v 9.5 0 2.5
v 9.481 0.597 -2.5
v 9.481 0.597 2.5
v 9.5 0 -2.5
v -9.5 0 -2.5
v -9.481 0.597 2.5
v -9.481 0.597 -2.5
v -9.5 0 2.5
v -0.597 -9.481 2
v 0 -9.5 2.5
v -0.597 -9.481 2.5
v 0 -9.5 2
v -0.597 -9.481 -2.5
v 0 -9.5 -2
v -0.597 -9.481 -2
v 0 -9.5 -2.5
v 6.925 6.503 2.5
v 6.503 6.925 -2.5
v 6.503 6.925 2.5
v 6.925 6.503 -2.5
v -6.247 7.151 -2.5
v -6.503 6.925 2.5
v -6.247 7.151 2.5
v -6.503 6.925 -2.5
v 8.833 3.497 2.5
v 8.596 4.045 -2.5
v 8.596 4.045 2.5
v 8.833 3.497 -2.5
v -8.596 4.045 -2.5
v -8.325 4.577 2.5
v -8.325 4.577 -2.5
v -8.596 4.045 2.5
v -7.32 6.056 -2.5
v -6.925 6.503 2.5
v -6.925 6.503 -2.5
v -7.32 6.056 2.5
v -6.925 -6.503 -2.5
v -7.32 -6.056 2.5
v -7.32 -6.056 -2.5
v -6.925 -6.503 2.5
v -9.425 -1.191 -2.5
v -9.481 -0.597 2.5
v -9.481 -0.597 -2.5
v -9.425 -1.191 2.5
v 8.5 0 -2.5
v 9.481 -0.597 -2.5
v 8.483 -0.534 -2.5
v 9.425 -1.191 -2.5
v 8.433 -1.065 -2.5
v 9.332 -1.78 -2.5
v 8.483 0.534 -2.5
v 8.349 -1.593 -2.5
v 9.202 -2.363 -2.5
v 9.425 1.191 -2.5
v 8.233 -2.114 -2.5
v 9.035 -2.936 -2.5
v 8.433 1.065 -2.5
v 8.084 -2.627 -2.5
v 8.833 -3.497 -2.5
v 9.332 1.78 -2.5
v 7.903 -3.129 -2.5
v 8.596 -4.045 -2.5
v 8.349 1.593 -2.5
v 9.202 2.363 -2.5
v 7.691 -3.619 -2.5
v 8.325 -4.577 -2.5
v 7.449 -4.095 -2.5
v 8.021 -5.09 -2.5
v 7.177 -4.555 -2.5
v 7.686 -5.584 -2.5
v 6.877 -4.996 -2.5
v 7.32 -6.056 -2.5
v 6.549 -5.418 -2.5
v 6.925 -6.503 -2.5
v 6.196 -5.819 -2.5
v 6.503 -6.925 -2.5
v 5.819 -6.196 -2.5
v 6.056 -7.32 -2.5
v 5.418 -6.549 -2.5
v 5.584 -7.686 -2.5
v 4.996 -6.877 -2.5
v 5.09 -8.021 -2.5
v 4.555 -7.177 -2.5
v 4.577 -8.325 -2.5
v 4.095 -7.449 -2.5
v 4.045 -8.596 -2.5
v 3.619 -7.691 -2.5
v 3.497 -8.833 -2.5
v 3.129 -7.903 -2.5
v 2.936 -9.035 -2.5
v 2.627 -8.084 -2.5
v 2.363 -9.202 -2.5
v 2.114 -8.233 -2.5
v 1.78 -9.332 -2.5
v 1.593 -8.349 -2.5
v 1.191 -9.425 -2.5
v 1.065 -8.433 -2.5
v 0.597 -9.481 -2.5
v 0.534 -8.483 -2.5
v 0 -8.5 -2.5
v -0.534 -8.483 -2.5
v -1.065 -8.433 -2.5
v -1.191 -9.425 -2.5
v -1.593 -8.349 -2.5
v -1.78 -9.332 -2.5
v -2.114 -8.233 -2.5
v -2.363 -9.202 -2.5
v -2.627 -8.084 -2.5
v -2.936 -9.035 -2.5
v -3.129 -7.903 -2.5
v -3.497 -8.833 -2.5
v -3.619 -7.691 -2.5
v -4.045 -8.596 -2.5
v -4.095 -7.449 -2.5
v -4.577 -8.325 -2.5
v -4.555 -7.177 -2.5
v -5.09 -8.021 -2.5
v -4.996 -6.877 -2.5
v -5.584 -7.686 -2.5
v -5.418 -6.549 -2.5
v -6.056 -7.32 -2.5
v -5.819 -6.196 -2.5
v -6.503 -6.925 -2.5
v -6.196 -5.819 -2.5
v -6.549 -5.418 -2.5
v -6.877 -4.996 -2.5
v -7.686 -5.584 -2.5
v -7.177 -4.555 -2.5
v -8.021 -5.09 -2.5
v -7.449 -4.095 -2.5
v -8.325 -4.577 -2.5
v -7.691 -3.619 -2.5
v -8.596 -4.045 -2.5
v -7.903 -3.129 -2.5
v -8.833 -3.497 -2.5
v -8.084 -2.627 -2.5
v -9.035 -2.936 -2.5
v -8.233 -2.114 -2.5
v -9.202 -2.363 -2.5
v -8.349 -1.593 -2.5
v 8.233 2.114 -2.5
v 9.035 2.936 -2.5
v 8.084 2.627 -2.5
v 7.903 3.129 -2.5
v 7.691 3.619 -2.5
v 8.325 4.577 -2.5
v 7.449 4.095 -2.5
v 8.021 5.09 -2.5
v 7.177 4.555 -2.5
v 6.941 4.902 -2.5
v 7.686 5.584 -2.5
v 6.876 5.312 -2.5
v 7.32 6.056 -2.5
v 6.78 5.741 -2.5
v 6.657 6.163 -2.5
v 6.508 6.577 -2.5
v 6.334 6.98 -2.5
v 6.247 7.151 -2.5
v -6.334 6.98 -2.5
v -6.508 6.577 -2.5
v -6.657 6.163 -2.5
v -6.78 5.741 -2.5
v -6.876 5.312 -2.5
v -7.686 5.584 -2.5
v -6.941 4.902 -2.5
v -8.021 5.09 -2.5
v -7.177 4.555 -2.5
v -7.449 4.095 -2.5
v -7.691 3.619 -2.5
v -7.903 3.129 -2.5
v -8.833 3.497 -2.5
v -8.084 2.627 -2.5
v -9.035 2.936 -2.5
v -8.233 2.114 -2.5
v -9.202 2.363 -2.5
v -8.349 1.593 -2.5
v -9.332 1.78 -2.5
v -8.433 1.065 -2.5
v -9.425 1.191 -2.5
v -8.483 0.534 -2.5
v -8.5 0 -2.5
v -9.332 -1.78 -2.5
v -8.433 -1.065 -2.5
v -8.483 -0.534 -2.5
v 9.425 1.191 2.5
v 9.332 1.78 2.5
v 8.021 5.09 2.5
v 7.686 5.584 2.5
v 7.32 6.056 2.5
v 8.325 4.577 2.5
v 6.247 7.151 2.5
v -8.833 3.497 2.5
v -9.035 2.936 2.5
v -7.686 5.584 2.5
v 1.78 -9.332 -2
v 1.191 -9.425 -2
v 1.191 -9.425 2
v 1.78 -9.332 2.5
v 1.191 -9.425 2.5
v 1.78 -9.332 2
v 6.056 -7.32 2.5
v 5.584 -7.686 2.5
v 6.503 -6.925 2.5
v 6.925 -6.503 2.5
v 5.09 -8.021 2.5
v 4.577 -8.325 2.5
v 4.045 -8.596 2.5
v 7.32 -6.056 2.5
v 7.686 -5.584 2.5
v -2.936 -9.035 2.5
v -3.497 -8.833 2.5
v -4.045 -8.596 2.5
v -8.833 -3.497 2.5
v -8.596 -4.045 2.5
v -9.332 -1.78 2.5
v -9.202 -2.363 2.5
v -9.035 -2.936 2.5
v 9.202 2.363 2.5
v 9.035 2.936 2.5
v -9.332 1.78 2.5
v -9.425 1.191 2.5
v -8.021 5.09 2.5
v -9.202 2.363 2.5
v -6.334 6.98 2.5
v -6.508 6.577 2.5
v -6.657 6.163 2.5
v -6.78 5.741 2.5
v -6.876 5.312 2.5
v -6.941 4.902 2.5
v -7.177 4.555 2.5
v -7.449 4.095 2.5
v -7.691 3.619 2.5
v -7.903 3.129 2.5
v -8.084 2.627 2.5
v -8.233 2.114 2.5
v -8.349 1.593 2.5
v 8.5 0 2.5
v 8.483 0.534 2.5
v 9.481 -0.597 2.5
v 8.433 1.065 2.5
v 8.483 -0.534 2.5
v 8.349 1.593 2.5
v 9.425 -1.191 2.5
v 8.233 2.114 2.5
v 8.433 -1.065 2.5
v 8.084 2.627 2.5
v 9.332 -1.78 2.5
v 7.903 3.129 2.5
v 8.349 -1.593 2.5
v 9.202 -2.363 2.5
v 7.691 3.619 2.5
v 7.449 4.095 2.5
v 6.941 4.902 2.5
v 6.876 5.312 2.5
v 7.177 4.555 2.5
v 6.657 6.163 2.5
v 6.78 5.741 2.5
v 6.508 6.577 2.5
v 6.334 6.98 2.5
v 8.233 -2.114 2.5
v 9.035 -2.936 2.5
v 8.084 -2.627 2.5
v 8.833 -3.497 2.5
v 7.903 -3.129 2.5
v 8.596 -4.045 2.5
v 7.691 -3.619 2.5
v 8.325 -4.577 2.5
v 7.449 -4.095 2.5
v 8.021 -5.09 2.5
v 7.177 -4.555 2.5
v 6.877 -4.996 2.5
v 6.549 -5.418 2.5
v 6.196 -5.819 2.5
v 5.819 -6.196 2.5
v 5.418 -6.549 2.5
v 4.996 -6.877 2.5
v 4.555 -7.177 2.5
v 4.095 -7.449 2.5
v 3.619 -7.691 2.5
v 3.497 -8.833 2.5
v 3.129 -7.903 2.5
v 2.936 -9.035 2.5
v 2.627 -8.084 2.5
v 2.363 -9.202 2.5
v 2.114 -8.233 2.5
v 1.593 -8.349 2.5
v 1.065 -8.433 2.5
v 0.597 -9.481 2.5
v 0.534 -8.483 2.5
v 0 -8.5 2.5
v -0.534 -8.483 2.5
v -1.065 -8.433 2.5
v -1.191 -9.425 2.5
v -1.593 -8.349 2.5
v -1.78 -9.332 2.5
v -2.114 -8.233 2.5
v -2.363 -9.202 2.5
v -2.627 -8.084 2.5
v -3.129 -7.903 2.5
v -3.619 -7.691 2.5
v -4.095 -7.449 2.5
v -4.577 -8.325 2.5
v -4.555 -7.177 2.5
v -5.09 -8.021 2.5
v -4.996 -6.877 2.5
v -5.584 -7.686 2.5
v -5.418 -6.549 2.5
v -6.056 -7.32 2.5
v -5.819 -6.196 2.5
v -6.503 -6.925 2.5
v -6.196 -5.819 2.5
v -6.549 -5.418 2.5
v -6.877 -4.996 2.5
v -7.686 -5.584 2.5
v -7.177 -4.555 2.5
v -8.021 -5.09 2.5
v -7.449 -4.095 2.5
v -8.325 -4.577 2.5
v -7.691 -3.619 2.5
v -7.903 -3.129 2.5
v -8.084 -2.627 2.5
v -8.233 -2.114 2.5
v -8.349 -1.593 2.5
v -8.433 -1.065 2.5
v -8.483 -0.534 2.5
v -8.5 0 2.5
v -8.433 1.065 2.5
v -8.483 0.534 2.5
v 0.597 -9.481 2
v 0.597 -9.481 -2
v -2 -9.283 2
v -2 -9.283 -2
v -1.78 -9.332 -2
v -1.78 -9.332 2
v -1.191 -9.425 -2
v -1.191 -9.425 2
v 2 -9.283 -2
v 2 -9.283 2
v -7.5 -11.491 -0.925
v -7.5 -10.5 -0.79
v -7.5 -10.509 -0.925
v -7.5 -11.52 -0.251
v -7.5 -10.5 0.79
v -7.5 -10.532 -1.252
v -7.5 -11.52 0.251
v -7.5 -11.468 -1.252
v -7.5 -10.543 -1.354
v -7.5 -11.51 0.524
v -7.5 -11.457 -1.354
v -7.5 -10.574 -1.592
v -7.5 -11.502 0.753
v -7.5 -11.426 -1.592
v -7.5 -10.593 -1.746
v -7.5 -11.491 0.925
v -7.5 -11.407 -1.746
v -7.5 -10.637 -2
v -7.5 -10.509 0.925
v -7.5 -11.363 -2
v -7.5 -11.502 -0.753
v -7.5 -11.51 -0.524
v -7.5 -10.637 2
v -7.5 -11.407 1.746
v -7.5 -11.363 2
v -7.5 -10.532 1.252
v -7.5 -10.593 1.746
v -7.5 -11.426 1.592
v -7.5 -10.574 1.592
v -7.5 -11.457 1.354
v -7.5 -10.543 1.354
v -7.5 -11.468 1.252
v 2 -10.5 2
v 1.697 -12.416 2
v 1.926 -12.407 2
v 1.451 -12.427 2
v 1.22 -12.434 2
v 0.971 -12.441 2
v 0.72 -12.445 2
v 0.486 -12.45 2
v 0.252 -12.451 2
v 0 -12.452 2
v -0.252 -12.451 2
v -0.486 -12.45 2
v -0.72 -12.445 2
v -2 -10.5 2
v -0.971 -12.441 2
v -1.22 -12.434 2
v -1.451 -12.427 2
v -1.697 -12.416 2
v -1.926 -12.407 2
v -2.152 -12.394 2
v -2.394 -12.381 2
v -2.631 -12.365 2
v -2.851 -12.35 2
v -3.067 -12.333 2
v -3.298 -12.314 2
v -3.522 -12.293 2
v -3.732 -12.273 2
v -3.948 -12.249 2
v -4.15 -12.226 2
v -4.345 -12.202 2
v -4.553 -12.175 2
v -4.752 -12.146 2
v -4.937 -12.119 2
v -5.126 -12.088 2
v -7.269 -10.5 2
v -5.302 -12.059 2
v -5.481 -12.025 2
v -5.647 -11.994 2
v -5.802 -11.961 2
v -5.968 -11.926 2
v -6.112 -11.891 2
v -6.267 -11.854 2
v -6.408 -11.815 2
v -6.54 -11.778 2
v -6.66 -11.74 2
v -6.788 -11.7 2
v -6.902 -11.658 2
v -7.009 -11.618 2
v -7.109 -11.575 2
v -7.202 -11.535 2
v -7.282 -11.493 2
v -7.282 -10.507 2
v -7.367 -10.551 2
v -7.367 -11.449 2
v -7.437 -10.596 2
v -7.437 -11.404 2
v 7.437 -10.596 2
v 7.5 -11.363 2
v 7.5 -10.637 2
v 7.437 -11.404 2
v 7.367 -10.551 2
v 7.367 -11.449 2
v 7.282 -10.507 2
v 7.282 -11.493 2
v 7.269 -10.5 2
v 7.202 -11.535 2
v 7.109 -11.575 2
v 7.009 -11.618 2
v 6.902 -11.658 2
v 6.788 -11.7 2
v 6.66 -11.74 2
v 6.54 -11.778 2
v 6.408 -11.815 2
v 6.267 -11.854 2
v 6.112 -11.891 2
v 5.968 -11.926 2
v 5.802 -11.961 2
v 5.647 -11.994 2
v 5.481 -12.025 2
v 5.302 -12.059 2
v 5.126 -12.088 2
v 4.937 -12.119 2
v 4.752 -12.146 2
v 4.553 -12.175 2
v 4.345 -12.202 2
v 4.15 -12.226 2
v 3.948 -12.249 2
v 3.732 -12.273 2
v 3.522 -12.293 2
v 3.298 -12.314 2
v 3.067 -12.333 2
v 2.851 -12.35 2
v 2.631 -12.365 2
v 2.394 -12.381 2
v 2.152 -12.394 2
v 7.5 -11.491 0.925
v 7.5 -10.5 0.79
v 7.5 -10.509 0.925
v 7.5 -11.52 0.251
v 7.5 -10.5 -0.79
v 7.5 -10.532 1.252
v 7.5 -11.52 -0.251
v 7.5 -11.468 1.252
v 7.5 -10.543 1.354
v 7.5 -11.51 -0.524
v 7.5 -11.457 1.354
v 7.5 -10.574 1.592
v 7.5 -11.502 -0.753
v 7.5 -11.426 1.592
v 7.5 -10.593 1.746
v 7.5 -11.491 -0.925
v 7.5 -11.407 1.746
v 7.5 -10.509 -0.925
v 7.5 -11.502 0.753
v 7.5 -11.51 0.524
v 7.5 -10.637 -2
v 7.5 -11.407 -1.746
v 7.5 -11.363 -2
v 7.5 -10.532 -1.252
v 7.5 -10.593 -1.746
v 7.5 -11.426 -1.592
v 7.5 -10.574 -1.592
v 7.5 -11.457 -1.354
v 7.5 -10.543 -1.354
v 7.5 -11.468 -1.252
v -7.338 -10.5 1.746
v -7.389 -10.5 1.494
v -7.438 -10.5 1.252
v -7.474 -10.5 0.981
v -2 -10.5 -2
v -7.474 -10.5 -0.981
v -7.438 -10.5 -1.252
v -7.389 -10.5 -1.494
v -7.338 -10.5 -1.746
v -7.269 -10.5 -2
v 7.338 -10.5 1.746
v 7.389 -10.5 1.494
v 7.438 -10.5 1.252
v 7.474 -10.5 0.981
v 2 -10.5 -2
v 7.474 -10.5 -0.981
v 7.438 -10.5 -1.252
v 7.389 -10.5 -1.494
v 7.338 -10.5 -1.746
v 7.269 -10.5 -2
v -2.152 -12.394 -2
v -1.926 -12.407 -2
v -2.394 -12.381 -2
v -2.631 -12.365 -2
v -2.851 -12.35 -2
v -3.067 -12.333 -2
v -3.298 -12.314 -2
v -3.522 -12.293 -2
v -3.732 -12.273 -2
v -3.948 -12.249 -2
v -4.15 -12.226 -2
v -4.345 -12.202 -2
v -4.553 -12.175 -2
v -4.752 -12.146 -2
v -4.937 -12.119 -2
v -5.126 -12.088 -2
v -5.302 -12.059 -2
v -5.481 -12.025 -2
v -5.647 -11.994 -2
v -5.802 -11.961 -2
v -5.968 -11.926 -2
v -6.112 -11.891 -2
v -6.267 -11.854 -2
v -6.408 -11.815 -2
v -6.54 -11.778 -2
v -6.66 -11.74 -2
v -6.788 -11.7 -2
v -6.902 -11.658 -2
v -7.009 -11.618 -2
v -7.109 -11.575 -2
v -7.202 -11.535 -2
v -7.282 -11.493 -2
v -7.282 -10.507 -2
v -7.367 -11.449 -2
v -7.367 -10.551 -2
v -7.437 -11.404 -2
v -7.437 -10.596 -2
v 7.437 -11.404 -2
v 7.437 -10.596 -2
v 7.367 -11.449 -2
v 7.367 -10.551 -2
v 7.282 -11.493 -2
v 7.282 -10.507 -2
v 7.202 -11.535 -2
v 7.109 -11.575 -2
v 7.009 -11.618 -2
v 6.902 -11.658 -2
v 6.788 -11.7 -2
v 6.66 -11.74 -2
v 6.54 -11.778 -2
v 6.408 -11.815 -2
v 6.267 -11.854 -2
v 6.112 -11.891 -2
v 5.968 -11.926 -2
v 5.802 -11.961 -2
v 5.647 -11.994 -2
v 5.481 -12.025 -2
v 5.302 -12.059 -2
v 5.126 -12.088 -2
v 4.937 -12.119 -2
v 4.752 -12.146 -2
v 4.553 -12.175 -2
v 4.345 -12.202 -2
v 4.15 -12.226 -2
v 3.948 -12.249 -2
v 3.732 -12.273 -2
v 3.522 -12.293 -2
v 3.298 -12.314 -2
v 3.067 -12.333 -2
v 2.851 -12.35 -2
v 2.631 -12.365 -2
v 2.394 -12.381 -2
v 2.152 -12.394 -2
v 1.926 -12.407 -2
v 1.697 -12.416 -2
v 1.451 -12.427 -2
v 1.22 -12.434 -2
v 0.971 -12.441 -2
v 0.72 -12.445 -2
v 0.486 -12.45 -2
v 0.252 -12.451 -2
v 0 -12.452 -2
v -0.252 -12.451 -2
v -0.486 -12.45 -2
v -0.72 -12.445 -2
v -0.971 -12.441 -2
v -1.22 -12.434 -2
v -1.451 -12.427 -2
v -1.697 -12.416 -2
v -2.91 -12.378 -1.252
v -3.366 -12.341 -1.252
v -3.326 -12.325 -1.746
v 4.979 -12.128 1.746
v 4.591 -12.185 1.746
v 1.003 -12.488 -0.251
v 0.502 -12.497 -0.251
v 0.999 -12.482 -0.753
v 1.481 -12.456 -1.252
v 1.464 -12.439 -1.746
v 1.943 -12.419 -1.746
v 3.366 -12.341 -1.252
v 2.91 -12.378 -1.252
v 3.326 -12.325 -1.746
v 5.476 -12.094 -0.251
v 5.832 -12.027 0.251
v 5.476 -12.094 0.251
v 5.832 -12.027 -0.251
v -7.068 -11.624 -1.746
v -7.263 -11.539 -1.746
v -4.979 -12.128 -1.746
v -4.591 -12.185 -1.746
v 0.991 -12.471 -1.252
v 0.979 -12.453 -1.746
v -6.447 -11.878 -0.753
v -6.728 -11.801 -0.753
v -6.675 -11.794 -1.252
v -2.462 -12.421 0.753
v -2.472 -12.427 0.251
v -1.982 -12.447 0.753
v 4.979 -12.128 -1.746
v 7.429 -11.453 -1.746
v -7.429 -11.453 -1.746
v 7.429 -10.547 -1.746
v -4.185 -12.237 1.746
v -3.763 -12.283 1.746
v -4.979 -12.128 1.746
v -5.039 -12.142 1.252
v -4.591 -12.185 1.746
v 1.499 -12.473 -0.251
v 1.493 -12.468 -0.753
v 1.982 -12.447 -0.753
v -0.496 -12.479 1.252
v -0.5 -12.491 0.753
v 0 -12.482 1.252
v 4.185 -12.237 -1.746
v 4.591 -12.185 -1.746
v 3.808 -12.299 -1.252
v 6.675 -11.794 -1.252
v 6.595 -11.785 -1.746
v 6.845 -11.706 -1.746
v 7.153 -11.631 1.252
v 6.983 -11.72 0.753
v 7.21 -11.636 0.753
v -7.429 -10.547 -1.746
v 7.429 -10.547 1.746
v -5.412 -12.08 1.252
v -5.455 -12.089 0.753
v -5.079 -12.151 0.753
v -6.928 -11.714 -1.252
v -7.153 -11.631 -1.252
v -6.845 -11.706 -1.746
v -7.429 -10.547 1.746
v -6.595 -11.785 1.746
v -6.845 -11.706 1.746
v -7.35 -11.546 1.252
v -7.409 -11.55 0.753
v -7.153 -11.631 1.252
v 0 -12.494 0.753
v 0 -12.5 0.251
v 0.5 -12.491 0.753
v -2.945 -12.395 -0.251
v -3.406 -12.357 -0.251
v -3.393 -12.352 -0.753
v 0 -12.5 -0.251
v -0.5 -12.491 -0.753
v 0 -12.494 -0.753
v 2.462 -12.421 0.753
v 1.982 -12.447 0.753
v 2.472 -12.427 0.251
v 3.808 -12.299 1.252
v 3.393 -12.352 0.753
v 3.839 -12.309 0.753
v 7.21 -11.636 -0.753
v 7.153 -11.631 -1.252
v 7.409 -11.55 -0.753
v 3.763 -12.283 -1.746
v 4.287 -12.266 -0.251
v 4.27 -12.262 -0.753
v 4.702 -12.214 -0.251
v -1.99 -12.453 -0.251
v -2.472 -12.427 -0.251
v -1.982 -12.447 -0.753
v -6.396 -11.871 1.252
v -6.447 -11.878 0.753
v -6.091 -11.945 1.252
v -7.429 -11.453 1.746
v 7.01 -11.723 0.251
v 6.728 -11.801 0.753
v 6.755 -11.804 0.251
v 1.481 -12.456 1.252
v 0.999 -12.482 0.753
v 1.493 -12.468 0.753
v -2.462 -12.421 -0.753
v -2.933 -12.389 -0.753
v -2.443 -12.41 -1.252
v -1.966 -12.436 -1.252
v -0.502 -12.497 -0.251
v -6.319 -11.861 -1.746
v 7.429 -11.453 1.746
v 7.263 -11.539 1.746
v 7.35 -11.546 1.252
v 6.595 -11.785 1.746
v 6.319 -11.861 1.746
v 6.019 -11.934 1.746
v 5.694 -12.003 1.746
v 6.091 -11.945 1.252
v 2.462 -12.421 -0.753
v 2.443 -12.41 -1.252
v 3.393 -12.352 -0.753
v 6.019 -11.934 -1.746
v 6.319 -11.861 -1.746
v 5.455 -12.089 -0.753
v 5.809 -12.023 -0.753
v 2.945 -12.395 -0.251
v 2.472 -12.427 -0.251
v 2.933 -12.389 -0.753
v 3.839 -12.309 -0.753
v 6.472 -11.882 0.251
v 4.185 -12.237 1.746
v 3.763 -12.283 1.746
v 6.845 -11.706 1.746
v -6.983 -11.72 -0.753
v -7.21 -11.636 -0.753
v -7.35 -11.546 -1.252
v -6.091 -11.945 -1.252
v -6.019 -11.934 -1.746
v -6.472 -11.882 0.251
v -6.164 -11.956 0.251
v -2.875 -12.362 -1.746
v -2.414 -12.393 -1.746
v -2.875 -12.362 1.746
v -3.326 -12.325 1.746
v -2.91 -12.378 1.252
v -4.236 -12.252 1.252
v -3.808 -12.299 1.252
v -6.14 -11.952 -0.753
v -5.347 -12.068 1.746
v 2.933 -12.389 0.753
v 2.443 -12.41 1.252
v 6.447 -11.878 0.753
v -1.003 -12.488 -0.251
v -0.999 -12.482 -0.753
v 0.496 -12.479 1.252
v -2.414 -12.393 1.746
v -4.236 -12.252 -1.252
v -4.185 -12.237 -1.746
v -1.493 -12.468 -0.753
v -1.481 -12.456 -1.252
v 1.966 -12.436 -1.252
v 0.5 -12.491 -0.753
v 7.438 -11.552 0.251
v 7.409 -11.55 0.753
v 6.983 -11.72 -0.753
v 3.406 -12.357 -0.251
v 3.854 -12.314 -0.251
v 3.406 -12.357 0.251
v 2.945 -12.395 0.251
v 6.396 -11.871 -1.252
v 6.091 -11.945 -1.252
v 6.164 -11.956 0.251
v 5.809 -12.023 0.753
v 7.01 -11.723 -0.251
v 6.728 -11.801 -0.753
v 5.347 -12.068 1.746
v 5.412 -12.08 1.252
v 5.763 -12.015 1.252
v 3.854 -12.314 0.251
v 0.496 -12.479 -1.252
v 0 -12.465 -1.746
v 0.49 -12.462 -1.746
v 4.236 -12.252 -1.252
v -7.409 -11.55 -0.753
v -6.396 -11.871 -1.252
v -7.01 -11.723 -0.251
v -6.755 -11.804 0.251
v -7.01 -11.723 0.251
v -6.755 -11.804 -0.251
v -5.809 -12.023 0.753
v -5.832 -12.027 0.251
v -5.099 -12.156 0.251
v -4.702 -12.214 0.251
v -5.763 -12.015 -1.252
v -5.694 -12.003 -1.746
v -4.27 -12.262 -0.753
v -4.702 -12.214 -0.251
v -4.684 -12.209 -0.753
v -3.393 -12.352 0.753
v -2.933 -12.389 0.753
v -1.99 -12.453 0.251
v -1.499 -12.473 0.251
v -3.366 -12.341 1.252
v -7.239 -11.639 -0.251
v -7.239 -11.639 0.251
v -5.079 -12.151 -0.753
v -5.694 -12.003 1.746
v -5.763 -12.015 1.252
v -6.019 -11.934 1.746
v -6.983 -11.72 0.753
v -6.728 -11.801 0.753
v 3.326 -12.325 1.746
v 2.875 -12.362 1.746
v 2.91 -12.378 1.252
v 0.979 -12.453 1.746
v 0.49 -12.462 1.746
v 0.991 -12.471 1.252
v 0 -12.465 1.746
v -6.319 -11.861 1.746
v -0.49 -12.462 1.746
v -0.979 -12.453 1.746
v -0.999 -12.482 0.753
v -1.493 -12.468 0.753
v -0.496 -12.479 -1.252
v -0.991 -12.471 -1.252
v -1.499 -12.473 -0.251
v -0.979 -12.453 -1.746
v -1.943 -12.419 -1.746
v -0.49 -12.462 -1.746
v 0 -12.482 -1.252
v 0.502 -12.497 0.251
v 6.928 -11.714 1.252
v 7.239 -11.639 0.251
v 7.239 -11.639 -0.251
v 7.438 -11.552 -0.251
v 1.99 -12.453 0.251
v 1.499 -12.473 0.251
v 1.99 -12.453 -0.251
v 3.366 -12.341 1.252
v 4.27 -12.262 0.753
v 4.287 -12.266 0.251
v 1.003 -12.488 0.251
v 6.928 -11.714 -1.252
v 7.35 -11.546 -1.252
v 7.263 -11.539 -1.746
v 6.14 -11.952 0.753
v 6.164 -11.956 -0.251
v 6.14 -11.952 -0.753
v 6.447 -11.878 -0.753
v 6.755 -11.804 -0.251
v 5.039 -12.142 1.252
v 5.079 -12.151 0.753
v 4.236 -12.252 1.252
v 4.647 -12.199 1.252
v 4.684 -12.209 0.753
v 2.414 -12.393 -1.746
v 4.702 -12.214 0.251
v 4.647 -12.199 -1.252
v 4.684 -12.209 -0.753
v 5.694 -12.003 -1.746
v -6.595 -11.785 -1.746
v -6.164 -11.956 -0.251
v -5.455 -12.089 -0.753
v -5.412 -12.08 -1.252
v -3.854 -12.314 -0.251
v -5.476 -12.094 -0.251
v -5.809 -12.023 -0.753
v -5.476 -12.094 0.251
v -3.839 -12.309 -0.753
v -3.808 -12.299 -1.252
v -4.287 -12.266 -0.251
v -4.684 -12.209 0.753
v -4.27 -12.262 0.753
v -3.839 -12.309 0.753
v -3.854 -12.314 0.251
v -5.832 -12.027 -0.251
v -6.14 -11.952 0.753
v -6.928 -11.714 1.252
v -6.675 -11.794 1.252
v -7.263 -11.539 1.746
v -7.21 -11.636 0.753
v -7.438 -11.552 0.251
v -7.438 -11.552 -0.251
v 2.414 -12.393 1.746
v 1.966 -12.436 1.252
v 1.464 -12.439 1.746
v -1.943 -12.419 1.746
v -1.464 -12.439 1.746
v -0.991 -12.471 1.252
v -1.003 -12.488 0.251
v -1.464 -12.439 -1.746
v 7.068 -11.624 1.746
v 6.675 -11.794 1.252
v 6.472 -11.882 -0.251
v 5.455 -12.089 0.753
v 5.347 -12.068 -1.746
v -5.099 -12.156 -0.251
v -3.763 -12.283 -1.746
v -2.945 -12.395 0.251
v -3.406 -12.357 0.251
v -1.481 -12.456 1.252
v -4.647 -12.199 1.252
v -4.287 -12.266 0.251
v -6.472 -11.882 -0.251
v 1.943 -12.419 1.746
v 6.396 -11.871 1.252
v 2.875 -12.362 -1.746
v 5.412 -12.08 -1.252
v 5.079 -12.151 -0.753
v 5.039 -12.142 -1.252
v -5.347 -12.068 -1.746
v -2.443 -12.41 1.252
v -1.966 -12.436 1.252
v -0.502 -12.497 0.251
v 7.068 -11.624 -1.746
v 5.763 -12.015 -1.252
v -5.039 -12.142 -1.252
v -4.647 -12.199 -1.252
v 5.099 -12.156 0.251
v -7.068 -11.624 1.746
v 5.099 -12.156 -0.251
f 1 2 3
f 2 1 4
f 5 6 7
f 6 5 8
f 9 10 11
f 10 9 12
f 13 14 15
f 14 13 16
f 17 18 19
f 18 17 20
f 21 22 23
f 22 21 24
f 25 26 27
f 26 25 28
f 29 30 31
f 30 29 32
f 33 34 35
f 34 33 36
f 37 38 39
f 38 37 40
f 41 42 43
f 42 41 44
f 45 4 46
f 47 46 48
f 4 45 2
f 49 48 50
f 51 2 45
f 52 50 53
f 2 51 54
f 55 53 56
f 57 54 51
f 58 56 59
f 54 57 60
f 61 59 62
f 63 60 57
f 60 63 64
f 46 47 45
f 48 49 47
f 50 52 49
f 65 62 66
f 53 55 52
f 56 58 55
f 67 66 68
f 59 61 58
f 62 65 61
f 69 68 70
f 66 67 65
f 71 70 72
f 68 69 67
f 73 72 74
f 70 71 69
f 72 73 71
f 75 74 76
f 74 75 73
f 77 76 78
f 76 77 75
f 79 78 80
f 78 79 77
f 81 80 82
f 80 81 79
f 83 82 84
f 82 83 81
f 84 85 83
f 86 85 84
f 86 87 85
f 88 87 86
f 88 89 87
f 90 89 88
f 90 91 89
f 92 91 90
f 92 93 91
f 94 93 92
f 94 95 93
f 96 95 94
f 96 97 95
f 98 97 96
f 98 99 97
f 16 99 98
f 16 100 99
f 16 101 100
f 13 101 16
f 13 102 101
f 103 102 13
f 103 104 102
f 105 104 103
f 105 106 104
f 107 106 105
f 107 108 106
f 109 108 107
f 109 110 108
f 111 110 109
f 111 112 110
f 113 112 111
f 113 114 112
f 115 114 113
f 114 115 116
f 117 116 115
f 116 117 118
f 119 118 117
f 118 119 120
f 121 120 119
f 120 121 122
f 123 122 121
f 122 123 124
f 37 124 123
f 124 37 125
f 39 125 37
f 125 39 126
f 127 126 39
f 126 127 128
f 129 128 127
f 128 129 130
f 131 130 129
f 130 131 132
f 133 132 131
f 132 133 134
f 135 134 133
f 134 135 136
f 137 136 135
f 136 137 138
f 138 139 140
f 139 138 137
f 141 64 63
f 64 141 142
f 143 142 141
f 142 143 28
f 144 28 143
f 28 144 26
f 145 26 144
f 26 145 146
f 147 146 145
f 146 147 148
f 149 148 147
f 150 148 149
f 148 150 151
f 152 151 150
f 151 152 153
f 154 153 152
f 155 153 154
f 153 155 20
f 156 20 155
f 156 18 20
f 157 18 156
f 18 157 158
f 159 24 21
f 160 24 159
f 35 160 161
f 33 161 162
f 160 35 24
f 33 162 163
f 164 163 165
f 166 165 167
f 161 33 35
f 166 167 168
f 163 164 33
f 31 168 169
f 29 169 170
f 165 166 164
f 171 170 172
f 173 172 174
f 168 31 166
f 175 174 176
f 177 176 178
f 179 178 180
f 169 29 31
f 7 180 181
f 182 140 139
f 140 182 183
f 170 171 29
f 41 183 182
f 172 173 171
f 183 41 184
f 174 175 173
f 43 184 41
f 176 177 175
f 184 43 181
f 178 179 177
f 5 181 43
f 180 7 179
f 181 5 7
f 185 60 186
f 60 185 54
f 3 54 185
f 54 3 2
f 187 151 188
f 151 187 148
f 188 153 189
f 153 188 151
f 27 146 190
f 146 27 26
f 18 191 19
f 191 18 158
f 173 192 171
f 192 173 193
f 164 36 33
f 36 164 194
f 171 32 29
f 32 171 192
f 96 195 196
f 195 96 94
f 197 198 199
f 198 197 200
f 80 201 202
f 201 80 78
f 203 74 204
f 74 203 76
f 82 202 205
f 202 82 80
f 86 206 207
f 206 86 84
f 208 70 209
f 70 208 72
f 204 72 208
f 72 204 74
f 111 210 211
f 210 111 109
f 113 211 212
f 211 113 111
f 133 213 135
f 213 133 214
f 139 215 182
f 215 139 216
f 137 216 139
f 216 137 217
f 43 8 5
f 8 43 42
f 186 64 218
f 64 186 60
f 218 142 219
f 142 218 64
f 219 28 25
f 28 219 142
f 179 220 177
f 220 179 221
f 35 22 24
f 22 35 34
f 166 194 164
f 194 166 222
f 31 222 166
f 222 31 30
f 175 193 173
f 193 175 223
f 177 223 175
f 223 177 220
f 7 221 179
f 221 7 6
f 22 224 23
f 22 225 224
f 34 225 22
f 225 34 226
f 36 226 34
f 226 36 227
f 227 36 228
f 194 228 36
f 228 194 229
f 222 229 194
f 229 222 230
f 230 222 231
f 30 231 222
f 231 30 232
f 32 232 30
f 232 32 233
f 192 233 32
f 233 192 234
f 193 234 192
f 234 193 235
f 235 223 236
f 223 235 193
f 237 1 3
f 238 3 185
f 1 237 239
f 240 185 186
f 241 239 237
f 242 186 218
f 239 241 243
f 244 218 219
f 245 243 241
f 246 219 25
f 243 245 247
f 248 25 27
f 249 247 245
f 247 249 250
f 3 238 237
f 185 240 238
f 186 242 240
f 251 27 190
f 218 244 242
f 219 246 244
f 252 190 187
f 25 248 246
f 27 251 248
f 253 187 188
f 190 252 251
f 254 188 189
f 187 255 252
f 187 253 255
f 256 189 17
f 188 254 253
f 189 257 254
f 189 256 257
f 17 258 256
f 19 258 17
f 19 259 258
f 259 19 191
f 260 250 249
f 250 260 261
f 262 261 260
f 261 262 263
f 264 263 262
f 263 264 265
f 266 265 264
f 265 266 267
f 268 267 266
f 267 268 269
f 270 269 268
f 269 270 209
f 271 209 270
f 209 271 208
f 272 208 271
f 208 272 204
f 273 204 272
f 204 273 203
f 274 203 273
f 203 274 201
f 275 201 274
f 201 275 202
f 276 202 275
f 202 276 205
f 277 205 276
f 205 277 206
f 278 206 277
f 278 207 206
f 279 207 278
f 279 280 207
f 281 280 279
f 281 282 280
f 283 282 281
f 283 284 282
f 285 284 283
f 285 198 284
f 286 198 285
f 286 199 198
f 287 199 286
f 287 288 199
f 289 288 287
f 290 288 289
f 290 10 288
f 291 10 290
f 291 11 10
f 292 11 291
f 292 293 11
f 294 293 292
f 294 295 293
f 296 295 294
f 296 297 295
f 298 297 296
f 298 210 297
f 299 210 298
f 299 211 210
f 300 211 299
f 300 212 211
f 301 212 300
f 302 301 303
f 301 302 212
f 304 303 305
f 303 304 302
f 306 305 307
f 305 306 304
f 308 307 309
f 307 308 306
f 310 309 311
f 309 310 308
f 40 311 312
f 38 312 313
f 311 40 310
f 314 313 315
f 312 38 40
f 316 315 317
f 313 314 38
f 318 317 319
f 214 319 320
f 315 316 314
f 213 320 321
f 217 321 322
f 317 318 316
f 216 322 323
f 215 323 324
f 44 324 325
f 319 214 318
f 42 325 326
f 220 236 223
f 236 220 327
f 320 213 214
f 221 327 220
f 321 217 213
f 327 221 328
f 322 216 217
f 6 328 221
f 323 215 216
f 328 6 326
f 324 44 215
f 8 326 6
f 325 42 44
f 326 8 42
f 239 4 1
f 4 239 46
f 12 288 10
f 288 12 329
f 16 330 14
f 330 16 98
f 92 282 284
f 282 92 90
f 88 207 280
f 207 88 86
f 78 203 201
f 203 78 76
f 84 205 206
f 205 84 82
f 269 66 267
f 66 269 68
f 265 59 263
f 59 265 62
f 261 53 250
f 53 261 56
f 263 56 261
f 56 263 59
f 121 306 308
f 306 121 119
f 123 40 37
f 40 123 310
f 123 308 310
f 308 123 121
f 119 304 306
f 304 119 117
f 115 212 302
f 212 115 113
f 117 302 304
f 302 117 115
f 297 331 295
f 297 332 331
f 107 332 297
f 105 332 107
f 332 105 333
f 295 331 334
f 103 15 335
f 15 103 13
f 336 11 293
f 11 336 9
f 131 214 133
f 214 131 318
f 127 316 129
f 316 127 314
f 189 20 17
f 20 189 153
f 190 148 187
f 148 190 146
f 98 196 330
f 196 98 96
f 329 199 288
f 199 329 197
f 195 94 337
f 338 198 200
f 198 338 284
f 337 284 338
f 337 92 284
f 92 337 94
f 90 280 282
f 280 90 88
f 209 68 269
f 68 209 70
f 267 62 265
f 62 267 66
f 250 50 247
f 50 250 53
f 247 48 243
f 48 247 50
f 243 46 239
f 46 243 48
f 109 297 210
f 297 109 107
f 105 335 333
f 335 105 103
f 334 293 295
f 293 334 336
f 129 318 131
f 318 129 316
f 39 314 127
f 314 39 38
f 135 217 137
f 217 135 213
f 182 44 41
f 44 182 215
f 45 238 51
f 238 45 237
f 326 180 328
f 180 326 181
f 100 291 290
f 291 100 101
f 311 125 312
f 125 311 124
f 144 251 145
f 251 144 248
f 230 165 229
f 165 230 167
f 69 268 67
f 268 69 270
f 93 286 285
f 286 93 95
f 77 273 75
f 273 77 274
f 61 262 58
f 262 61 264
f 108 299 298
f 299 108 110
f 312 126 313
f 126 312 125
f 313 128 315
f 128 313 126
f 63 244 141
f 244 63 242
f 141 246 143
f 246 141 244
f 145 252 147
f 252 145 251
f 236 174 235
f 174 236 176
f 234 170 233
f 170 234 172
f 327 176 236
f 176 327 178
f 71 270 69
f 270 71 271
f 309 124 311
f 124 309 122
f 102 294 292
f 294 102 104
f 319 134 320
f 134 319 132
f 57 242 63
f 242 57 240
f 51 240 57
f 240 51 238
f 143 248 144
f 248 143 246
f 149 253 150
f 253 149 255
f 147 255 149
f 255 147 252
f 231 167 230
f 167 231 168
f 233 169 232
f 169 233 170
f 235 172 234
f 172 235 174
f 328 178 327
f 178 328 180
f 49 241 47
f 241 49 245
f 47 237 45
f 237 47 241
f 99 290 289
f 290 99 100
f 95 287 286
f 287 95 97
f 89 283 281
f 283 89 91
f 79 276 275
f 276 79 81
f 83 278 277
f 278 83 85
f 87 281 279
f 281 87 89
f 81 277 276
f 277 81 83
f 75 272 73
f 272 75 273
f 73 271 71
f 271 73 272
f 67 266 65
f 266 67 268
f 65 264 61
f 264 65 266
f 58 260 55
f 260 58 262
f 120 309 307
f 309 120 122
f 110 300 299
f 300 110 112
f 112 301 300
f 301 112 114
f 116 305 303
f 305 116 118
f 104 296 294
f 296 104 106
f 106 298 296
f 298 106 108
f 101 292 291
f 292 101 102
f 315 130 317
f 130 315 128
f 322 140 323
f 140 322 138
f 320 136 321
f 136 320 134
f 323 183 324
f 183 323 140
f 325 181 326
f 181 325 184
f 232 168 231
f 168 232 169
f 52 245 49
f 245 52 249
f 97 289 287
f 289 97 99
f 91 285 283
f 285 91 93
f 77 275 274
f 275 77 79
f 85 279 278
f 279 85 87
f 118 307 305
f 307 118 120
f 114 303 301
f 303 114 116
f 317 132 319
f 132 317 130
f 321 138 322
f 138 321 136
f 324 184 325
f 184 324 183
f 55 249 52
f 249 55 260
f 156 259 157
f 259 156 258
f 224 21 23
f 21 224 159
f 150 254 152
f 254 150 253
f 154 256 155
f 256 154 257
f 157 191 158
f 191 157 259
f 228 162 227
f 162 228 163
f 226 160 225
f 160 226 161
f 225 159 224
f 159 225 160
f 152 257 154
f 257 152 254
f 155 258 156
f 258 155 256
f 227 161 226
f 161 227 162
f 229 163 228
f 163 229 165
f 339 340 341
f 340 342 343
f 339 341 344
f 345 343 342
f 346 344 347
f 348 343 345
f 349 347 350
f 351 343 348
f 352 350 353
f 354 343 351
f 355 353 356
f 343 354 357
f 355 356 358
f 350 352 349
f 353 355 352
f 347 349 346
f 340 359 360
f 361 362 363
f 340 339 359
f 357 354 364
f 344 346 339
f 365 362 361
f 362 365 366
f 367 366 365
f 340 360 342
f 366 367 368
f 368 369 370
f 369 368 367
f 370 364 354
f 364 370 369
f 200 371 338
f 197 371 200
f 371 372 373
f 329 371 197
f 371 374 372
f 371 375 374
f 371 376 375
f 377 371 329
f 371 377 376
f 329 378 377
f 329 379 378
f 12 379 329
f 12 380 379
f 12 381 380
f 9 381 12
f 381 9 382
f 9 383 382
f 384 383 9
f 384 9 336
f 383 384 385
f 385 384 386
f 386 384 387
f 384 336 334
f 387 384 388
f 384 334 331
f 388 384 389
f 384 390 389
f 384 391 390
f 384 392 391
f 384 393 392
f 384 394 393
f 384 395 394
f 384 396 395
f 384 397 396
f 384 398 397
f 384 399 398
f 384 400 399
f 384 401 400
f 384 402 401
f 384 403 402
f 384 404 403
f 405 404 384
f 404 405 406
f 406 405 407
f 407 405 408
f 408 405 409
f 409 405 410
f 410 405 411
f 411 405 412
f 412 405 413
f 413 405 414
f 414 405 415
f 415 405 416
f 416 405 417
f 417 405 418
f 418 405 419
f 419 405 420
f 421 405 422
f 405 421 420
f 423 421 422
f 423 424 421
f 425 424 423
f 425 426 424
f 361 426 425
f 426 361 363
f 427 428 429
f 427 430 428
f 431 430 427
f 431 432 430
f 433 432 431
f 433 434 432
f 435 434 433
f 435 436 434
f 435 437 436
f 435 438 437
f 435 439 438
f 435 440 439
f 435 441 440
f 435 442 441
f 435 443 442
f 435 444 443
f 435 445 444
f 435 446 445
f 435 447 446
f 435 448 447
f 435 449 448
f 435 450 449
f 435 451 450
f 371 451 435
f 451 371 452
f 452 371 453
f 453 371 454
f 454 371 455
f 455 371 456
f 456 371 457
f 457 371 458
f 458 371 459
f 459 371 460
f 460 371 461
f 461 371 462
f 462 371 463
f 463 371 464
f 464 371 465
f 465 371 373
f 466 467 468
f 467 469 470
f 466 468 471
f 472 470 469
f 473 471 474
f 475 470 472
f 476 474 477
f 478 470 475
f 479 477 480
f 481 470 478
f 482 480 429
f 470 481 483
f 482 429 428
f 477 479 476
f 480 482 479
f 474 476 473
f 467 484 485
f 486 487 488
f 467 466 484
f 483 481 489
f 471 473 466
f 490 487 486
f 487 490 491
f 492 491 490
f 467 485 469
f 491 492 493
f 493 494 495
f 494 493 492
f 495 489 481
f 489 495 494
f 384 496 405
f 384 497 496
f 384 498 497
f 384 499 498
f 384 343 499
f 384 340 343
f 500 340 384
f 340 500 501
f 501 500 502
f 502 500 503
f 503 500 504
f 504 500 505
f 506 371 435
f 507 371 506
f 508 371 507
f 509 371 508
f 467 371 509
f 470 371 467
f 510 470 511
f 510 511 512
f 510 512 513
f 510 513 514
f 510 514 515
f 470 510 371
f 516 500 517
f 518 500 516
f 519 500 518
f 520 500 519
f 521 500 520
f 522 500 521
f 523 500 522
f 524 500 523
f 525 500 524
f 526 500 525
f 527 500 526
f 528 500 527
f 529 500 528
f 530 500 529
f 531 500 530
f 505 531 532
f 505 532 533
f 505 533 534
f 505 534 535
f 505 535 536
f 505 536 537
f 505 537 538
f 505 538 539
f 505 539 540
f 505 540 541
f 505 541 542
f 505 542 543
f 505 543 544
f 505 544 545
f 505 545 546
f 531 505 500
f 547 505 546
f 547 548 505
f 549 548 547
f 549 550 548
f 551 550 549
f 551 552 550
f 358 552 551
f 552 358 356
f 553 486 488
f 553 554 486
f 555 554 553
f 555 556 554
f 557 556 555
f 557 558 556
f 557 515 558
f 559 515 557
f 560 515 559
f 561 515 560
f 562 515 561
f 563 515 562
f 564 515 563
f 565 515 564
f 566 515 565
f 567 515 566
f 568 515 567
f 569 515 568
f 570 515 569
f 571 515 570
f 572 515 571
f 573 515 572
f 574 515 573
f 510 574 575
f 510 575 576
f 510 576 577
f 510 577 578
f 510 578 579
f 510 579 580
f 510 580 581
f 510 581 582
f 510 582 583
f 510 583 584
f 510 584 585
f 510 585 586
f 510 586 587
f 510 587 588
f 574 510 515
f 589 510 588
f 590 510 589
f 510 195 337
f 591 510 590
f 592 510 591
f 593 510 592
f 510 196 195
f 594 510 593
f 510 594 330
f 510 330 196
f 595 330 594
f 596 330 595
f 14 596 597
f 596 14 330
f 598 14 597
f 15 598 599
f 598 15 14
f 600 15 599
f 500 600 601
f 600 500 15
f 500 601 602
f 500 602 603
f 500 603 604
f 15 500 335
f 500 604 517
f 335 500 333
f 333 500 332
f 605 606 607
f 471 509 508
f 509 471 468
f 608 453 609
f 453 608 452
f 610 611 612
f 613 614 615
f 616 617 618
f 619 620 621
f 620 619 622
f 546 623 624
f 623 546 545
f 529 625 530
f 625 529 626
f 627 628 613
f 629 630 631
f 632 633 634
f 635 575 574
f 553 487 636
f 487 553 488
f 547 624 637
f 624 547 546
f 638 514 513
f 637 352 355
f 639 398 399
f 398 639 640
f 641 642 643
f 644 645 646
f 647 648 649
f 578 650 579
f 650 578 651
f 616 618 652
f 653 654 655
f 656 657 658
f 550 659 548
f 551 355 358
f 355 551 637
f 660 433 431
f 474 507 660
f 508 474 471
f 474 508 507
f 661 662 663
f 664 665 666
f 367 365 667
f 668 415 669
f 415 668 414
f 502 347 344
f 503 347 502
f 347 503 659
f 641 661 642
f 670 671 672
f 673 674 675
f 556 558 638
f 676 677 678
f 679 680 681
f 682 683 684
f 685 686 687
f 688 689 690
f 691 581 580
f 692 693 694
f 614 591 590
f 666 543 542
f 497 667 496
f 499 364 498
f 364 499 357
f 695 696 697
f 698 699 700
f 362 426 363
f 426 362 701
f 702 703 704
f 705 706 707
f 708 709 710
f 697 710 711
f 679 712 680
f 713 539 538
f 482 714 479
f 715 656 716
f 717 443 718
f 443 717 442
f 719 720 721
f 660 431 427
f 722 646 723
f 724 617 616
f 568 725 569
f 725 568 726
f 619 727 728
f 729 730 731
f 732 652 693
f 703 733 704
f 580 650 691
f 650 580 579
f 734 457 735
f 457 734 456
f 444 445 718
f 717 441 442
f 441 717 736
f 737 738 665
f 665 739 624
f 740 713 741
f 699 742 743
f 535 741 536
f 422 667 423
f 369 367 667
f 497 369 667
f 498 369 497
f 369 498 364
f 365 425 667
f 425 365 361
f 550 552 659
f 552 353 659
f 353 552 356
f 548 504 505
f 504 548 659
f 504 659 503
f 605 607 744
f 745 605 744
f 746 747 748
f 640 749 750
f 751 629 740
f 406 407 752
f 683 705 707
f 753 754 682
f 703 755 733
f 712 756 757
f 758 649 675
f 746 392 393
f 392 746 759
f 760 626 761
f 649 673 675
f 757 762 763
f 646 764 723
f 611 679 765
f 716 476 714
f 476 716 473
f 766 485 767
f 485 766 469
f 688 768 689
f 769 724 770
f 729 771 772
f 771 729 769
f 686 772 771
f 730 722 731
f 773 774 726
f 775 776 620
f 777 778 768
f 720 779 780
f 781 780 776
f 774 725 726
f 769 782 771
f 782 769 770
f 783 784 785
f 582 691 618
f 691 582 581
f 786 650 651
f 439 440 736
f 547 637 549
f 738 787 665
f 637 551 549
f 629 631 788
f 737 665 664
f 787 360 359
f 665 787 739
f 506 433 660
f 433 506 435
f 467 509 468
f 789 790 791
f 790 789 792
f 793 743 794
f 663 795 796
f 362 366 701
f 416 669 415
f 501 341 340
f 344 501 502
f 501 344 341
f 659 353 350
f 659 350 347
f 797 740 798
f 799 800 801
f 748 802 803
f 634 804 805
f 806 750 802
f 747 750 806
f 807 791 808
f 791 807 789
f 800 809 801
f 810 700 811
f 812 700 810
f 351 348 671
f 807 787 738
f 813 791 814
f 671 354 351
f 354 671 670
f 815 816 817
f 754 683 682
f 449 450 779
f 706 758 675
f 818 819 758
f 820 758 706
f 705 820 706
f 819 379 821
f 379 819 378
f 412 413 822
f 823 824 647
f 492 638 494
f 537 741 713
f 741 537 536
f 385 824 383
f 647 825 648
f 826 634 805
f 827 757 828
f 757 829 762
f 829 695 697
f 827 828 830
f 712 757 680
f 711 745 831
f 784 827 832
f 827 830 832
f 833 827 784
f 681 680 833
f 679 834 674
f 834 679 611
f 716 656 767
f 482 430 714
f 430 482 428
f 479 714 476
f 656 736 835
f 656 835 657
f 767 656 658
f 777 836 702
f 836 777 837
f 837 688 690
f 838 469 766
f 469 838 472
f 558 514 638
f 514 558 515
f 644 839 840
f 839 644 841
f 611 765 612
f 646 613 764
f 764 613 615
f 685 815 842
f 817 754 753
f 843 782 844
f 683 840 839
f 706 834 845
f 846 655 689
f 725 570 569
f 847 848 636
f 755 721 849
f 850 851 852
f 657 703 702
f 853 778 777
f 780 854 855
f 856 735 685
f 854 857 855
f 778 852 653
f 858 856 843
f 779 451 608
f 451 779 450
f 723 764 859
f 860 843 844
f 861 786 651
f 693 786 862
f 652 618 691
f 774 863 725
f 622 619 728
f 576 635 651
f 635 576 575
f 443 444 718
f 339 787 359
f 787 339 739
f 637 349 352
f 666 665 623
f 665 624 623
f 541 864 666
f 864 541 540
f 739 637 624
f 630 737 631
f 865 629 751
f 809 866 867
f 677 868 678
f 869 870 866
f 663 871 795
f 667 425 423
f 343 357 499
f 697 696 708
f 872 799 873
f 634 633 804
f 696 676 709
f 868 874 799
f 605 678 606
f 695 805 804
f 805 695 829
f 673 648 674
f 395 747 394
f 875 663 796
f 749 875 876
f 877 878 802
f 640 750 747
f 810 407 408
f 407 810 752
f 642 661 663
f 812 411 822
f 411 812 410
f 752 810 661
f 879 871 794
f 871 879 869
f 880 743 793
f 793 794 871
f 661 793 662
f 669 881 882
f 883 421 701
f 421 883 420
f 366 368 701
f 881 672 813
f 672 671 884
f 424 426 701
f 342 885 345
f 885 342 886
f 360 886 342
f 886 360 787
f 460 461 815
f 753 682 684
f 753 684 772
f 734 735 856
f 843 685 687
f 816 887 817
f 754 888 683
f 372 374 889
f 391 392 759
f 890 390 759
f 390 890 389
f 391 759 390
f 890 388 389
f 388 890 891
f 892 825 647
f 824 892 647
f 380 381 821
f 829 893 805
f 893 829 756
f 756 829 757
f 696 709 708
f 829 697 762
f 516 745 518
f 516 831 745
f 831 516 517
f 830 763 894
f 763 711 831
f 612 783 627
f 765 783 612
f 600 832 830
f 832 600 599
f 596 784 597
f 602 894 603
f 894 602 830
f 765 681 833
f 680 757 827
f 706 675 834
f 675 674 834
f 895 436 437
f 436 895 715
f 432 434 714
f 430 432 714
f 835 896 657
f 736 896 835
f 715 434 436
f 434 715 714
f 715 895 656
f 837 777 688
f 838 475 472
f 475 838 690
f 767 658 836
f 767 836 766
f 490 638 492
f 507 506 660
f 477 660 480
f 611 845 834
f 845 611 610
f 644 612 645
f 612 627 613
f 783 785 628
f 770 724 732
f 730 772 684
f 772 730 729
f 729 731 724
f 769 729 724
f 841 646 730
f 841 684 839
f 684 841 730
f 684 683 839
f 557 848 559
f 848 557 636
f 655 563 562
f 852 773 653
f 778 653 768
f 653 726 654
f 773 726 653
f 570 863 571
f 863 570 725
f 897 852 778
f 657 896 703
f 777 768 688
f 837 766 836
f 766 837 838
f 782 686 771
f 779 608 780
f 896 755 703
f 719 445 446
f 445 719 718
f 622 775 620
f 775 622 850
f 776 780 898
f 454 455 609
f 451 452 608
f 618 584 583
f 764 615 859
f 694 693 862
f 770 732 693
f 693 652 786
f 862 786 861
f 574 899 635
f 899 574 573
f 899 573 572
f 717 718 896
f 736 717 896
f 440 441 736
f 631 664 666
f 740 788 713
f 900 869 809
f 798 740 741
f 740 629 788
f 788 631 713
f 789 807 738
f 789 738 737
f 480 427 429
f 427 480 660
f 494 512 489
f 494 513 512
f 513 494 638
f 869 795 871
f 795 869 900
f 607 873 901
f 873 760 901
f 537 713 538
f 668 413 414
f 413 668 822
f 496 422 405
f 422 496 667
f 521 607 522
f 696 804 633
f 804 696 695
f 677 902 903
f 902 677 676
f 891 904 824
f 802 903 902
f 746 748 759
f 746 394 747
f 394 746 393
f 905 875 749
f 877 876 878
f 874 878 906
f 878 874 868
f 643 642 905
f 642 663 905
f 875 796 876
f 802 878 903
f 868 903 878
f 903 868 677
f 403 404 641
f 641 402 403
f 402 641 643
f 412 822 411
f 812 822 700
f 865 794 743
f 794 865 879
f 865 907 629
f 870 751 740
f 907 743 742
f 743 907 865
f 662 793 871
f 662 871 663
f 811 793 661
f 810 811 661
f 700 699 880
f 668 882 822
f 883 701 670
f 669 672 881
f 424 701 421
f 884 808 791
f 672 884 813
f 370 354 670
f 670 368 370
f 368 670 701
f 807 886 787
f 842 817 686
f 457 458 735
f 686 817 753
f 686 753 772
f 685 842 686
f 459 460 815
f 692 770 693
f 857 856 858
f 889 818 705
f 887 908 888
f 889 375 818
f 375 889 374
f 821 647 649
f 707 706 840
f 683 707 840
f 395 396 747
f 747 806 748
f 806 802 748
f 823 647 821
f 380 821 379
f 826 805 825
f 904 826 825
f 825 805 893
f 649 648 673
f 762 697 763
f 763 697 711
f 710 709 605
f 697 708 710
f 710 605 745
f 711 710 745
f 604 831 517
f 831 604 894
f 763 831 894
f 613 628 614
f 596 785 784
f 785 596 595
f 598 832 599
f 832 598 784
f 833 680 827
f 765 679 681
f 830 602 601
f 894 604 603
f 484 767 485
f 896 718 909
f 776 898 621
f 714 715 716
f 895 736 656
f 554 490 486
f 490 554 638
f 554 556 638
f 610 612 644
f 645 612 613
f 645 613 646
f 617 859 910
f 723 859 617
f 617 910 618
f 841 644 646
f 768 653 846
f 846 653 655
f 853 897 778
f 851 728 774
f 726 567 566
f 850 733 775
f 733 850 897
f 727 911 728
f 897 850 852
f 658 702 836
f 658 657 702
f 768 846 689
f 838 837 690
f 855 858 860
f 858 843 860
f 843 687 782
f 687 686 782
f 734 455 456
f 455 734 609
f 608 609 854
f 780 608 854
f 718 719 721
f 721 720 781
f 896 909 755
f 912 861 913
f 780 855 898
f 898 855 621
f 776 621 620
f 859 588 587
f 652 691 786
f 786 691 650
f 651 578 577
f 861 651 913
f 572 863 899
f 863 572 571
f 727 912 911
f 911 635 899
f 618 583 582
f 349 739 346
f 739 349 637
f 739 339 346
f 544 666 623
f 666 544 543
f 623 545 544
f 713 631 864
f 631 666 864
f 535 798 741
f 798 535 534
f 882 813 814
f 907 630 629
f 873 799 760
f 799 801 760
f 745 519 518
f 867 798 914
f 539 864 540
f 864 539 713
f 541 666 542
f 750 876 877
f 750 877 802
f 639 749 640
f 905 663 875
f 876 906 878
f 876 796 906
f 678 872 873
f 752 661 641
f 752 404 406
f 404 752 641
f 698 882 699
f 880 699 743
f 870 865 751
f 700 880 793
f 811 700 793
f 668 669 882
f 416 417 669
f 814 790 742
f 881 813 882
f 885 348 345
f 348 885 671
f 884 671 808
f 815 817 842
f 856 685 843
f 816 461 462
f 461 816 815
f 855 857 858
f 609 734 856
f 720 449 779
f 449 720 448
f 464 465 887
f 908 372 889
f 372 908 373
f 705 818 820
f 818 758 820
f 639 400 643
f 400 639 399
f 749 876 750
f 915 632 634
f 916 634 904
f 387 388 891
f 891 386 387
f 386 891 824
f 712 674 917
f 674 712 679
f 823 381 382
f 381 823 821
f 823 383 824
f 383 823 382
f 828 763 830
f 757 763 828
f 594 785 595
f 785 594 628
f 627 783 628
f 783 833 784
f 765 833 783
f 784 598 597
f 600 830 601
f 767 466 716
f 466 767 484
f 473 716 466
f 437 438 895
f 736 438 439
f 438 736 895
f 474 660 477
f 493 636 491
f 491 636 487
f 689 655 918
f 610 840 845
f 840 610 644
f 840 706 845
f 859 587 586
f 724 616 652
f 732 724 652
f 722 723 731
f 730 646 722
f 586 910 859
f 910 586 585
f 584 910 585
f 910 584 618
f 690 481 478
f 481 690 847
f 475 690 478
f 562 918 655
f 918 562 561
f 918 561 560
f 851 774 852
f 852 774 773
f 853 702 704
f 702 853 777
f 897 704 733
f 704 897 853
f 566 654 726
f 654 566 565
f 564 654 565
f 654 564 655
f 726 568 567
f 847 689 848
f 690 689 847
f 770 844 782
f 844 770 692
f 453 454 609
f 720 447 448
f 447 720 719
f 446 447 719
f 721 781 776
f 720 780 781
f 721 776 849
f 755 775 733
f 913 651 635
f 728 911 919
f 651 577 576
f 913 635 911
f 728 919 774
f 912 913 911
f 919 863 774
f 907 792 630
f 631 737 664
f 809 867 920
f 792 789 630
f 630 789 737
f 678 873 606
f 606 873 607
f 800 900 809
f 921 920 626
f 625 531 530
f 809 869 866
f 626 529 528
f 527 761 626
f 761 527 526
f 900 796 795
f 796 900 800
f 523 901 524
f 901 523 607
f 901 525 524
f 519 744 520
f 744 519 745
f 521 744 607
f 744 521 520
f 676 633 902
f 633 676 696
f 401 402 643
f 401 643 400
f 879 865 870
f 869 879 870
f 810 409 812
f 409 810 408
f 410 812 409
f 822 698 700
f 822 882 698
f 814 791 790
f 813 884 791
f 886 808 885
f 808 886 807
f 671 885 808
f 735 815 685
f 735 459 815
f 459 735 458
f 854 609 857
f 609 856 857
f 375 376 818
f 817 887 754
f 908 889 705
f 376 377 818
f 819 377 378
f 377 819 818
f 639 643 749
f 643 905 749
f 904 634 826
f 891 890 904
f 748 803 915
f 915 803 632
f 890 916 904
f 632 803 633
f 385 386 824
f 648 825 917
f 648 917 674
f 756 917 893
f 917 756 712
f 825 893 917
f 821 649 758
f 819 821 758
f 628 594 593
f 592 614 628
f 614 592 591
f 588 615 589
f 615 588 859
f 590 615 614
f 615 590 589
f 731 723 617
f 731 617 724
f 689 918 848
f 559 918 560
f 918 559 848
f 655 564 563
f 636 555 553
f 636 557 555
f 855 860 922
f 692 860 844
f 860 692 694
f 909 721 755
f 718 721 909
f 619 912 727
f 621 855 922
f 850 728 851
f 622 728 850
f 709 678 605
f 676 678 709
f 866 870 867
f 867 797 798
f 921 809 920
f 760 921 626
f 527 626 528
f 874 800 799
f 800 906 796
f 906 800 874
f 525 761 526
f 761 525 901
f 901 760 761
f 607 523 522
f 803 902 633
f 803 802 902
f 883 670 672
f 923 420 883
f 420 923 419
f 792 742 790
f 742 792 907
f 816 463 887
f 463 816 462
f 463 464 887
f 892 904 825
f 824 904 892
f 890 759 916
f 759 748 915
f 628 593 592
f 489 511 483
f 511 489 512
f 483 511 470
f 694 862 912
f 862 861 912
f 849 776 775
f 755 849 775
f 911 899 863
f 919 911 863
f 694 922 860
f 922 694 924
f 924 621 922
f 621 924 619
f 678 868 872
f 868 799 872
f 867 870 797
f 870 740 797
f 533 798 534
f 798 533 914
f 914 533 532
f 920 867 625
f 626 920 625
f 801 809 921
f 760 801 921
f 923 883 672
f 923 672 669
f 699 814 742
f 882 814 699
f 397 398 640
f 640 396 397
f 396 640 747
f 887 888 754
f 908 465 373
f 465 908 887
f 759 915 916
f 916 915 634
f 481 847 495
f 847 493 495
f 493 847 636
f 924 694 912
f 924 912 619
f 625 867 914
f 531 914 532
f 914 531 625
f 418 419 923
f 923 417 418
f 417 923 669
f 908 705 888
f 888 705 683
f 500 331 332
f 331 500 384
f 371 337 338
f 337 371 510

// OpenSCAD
//resize(newsize=[4,25,25]) sphere(r=30,$fn=100);
//sphere(r=10,$fn=72);
difference(){
    
    cylinder(h=5,r = 9.5 , center=true, $fn=100);
    cylinder(h=5,r = 8.5 , center=true, $fn=100);
    translate([0,4,0]){
      cylinder(h=5,r = 7 , center=true, $fn=100);
    }
    
}

translate([0,-10,0]){
   cube([4,2.5,4],center=true);
   translate([0,-2,0]){
     intersection(){
        cube([15,3,4],center=true); 
        translate([0,1,0]){
         resize(newsize=[16,3,16]) sphere(r=10, $fn=100);
     }    
   } 
 }
}

 
